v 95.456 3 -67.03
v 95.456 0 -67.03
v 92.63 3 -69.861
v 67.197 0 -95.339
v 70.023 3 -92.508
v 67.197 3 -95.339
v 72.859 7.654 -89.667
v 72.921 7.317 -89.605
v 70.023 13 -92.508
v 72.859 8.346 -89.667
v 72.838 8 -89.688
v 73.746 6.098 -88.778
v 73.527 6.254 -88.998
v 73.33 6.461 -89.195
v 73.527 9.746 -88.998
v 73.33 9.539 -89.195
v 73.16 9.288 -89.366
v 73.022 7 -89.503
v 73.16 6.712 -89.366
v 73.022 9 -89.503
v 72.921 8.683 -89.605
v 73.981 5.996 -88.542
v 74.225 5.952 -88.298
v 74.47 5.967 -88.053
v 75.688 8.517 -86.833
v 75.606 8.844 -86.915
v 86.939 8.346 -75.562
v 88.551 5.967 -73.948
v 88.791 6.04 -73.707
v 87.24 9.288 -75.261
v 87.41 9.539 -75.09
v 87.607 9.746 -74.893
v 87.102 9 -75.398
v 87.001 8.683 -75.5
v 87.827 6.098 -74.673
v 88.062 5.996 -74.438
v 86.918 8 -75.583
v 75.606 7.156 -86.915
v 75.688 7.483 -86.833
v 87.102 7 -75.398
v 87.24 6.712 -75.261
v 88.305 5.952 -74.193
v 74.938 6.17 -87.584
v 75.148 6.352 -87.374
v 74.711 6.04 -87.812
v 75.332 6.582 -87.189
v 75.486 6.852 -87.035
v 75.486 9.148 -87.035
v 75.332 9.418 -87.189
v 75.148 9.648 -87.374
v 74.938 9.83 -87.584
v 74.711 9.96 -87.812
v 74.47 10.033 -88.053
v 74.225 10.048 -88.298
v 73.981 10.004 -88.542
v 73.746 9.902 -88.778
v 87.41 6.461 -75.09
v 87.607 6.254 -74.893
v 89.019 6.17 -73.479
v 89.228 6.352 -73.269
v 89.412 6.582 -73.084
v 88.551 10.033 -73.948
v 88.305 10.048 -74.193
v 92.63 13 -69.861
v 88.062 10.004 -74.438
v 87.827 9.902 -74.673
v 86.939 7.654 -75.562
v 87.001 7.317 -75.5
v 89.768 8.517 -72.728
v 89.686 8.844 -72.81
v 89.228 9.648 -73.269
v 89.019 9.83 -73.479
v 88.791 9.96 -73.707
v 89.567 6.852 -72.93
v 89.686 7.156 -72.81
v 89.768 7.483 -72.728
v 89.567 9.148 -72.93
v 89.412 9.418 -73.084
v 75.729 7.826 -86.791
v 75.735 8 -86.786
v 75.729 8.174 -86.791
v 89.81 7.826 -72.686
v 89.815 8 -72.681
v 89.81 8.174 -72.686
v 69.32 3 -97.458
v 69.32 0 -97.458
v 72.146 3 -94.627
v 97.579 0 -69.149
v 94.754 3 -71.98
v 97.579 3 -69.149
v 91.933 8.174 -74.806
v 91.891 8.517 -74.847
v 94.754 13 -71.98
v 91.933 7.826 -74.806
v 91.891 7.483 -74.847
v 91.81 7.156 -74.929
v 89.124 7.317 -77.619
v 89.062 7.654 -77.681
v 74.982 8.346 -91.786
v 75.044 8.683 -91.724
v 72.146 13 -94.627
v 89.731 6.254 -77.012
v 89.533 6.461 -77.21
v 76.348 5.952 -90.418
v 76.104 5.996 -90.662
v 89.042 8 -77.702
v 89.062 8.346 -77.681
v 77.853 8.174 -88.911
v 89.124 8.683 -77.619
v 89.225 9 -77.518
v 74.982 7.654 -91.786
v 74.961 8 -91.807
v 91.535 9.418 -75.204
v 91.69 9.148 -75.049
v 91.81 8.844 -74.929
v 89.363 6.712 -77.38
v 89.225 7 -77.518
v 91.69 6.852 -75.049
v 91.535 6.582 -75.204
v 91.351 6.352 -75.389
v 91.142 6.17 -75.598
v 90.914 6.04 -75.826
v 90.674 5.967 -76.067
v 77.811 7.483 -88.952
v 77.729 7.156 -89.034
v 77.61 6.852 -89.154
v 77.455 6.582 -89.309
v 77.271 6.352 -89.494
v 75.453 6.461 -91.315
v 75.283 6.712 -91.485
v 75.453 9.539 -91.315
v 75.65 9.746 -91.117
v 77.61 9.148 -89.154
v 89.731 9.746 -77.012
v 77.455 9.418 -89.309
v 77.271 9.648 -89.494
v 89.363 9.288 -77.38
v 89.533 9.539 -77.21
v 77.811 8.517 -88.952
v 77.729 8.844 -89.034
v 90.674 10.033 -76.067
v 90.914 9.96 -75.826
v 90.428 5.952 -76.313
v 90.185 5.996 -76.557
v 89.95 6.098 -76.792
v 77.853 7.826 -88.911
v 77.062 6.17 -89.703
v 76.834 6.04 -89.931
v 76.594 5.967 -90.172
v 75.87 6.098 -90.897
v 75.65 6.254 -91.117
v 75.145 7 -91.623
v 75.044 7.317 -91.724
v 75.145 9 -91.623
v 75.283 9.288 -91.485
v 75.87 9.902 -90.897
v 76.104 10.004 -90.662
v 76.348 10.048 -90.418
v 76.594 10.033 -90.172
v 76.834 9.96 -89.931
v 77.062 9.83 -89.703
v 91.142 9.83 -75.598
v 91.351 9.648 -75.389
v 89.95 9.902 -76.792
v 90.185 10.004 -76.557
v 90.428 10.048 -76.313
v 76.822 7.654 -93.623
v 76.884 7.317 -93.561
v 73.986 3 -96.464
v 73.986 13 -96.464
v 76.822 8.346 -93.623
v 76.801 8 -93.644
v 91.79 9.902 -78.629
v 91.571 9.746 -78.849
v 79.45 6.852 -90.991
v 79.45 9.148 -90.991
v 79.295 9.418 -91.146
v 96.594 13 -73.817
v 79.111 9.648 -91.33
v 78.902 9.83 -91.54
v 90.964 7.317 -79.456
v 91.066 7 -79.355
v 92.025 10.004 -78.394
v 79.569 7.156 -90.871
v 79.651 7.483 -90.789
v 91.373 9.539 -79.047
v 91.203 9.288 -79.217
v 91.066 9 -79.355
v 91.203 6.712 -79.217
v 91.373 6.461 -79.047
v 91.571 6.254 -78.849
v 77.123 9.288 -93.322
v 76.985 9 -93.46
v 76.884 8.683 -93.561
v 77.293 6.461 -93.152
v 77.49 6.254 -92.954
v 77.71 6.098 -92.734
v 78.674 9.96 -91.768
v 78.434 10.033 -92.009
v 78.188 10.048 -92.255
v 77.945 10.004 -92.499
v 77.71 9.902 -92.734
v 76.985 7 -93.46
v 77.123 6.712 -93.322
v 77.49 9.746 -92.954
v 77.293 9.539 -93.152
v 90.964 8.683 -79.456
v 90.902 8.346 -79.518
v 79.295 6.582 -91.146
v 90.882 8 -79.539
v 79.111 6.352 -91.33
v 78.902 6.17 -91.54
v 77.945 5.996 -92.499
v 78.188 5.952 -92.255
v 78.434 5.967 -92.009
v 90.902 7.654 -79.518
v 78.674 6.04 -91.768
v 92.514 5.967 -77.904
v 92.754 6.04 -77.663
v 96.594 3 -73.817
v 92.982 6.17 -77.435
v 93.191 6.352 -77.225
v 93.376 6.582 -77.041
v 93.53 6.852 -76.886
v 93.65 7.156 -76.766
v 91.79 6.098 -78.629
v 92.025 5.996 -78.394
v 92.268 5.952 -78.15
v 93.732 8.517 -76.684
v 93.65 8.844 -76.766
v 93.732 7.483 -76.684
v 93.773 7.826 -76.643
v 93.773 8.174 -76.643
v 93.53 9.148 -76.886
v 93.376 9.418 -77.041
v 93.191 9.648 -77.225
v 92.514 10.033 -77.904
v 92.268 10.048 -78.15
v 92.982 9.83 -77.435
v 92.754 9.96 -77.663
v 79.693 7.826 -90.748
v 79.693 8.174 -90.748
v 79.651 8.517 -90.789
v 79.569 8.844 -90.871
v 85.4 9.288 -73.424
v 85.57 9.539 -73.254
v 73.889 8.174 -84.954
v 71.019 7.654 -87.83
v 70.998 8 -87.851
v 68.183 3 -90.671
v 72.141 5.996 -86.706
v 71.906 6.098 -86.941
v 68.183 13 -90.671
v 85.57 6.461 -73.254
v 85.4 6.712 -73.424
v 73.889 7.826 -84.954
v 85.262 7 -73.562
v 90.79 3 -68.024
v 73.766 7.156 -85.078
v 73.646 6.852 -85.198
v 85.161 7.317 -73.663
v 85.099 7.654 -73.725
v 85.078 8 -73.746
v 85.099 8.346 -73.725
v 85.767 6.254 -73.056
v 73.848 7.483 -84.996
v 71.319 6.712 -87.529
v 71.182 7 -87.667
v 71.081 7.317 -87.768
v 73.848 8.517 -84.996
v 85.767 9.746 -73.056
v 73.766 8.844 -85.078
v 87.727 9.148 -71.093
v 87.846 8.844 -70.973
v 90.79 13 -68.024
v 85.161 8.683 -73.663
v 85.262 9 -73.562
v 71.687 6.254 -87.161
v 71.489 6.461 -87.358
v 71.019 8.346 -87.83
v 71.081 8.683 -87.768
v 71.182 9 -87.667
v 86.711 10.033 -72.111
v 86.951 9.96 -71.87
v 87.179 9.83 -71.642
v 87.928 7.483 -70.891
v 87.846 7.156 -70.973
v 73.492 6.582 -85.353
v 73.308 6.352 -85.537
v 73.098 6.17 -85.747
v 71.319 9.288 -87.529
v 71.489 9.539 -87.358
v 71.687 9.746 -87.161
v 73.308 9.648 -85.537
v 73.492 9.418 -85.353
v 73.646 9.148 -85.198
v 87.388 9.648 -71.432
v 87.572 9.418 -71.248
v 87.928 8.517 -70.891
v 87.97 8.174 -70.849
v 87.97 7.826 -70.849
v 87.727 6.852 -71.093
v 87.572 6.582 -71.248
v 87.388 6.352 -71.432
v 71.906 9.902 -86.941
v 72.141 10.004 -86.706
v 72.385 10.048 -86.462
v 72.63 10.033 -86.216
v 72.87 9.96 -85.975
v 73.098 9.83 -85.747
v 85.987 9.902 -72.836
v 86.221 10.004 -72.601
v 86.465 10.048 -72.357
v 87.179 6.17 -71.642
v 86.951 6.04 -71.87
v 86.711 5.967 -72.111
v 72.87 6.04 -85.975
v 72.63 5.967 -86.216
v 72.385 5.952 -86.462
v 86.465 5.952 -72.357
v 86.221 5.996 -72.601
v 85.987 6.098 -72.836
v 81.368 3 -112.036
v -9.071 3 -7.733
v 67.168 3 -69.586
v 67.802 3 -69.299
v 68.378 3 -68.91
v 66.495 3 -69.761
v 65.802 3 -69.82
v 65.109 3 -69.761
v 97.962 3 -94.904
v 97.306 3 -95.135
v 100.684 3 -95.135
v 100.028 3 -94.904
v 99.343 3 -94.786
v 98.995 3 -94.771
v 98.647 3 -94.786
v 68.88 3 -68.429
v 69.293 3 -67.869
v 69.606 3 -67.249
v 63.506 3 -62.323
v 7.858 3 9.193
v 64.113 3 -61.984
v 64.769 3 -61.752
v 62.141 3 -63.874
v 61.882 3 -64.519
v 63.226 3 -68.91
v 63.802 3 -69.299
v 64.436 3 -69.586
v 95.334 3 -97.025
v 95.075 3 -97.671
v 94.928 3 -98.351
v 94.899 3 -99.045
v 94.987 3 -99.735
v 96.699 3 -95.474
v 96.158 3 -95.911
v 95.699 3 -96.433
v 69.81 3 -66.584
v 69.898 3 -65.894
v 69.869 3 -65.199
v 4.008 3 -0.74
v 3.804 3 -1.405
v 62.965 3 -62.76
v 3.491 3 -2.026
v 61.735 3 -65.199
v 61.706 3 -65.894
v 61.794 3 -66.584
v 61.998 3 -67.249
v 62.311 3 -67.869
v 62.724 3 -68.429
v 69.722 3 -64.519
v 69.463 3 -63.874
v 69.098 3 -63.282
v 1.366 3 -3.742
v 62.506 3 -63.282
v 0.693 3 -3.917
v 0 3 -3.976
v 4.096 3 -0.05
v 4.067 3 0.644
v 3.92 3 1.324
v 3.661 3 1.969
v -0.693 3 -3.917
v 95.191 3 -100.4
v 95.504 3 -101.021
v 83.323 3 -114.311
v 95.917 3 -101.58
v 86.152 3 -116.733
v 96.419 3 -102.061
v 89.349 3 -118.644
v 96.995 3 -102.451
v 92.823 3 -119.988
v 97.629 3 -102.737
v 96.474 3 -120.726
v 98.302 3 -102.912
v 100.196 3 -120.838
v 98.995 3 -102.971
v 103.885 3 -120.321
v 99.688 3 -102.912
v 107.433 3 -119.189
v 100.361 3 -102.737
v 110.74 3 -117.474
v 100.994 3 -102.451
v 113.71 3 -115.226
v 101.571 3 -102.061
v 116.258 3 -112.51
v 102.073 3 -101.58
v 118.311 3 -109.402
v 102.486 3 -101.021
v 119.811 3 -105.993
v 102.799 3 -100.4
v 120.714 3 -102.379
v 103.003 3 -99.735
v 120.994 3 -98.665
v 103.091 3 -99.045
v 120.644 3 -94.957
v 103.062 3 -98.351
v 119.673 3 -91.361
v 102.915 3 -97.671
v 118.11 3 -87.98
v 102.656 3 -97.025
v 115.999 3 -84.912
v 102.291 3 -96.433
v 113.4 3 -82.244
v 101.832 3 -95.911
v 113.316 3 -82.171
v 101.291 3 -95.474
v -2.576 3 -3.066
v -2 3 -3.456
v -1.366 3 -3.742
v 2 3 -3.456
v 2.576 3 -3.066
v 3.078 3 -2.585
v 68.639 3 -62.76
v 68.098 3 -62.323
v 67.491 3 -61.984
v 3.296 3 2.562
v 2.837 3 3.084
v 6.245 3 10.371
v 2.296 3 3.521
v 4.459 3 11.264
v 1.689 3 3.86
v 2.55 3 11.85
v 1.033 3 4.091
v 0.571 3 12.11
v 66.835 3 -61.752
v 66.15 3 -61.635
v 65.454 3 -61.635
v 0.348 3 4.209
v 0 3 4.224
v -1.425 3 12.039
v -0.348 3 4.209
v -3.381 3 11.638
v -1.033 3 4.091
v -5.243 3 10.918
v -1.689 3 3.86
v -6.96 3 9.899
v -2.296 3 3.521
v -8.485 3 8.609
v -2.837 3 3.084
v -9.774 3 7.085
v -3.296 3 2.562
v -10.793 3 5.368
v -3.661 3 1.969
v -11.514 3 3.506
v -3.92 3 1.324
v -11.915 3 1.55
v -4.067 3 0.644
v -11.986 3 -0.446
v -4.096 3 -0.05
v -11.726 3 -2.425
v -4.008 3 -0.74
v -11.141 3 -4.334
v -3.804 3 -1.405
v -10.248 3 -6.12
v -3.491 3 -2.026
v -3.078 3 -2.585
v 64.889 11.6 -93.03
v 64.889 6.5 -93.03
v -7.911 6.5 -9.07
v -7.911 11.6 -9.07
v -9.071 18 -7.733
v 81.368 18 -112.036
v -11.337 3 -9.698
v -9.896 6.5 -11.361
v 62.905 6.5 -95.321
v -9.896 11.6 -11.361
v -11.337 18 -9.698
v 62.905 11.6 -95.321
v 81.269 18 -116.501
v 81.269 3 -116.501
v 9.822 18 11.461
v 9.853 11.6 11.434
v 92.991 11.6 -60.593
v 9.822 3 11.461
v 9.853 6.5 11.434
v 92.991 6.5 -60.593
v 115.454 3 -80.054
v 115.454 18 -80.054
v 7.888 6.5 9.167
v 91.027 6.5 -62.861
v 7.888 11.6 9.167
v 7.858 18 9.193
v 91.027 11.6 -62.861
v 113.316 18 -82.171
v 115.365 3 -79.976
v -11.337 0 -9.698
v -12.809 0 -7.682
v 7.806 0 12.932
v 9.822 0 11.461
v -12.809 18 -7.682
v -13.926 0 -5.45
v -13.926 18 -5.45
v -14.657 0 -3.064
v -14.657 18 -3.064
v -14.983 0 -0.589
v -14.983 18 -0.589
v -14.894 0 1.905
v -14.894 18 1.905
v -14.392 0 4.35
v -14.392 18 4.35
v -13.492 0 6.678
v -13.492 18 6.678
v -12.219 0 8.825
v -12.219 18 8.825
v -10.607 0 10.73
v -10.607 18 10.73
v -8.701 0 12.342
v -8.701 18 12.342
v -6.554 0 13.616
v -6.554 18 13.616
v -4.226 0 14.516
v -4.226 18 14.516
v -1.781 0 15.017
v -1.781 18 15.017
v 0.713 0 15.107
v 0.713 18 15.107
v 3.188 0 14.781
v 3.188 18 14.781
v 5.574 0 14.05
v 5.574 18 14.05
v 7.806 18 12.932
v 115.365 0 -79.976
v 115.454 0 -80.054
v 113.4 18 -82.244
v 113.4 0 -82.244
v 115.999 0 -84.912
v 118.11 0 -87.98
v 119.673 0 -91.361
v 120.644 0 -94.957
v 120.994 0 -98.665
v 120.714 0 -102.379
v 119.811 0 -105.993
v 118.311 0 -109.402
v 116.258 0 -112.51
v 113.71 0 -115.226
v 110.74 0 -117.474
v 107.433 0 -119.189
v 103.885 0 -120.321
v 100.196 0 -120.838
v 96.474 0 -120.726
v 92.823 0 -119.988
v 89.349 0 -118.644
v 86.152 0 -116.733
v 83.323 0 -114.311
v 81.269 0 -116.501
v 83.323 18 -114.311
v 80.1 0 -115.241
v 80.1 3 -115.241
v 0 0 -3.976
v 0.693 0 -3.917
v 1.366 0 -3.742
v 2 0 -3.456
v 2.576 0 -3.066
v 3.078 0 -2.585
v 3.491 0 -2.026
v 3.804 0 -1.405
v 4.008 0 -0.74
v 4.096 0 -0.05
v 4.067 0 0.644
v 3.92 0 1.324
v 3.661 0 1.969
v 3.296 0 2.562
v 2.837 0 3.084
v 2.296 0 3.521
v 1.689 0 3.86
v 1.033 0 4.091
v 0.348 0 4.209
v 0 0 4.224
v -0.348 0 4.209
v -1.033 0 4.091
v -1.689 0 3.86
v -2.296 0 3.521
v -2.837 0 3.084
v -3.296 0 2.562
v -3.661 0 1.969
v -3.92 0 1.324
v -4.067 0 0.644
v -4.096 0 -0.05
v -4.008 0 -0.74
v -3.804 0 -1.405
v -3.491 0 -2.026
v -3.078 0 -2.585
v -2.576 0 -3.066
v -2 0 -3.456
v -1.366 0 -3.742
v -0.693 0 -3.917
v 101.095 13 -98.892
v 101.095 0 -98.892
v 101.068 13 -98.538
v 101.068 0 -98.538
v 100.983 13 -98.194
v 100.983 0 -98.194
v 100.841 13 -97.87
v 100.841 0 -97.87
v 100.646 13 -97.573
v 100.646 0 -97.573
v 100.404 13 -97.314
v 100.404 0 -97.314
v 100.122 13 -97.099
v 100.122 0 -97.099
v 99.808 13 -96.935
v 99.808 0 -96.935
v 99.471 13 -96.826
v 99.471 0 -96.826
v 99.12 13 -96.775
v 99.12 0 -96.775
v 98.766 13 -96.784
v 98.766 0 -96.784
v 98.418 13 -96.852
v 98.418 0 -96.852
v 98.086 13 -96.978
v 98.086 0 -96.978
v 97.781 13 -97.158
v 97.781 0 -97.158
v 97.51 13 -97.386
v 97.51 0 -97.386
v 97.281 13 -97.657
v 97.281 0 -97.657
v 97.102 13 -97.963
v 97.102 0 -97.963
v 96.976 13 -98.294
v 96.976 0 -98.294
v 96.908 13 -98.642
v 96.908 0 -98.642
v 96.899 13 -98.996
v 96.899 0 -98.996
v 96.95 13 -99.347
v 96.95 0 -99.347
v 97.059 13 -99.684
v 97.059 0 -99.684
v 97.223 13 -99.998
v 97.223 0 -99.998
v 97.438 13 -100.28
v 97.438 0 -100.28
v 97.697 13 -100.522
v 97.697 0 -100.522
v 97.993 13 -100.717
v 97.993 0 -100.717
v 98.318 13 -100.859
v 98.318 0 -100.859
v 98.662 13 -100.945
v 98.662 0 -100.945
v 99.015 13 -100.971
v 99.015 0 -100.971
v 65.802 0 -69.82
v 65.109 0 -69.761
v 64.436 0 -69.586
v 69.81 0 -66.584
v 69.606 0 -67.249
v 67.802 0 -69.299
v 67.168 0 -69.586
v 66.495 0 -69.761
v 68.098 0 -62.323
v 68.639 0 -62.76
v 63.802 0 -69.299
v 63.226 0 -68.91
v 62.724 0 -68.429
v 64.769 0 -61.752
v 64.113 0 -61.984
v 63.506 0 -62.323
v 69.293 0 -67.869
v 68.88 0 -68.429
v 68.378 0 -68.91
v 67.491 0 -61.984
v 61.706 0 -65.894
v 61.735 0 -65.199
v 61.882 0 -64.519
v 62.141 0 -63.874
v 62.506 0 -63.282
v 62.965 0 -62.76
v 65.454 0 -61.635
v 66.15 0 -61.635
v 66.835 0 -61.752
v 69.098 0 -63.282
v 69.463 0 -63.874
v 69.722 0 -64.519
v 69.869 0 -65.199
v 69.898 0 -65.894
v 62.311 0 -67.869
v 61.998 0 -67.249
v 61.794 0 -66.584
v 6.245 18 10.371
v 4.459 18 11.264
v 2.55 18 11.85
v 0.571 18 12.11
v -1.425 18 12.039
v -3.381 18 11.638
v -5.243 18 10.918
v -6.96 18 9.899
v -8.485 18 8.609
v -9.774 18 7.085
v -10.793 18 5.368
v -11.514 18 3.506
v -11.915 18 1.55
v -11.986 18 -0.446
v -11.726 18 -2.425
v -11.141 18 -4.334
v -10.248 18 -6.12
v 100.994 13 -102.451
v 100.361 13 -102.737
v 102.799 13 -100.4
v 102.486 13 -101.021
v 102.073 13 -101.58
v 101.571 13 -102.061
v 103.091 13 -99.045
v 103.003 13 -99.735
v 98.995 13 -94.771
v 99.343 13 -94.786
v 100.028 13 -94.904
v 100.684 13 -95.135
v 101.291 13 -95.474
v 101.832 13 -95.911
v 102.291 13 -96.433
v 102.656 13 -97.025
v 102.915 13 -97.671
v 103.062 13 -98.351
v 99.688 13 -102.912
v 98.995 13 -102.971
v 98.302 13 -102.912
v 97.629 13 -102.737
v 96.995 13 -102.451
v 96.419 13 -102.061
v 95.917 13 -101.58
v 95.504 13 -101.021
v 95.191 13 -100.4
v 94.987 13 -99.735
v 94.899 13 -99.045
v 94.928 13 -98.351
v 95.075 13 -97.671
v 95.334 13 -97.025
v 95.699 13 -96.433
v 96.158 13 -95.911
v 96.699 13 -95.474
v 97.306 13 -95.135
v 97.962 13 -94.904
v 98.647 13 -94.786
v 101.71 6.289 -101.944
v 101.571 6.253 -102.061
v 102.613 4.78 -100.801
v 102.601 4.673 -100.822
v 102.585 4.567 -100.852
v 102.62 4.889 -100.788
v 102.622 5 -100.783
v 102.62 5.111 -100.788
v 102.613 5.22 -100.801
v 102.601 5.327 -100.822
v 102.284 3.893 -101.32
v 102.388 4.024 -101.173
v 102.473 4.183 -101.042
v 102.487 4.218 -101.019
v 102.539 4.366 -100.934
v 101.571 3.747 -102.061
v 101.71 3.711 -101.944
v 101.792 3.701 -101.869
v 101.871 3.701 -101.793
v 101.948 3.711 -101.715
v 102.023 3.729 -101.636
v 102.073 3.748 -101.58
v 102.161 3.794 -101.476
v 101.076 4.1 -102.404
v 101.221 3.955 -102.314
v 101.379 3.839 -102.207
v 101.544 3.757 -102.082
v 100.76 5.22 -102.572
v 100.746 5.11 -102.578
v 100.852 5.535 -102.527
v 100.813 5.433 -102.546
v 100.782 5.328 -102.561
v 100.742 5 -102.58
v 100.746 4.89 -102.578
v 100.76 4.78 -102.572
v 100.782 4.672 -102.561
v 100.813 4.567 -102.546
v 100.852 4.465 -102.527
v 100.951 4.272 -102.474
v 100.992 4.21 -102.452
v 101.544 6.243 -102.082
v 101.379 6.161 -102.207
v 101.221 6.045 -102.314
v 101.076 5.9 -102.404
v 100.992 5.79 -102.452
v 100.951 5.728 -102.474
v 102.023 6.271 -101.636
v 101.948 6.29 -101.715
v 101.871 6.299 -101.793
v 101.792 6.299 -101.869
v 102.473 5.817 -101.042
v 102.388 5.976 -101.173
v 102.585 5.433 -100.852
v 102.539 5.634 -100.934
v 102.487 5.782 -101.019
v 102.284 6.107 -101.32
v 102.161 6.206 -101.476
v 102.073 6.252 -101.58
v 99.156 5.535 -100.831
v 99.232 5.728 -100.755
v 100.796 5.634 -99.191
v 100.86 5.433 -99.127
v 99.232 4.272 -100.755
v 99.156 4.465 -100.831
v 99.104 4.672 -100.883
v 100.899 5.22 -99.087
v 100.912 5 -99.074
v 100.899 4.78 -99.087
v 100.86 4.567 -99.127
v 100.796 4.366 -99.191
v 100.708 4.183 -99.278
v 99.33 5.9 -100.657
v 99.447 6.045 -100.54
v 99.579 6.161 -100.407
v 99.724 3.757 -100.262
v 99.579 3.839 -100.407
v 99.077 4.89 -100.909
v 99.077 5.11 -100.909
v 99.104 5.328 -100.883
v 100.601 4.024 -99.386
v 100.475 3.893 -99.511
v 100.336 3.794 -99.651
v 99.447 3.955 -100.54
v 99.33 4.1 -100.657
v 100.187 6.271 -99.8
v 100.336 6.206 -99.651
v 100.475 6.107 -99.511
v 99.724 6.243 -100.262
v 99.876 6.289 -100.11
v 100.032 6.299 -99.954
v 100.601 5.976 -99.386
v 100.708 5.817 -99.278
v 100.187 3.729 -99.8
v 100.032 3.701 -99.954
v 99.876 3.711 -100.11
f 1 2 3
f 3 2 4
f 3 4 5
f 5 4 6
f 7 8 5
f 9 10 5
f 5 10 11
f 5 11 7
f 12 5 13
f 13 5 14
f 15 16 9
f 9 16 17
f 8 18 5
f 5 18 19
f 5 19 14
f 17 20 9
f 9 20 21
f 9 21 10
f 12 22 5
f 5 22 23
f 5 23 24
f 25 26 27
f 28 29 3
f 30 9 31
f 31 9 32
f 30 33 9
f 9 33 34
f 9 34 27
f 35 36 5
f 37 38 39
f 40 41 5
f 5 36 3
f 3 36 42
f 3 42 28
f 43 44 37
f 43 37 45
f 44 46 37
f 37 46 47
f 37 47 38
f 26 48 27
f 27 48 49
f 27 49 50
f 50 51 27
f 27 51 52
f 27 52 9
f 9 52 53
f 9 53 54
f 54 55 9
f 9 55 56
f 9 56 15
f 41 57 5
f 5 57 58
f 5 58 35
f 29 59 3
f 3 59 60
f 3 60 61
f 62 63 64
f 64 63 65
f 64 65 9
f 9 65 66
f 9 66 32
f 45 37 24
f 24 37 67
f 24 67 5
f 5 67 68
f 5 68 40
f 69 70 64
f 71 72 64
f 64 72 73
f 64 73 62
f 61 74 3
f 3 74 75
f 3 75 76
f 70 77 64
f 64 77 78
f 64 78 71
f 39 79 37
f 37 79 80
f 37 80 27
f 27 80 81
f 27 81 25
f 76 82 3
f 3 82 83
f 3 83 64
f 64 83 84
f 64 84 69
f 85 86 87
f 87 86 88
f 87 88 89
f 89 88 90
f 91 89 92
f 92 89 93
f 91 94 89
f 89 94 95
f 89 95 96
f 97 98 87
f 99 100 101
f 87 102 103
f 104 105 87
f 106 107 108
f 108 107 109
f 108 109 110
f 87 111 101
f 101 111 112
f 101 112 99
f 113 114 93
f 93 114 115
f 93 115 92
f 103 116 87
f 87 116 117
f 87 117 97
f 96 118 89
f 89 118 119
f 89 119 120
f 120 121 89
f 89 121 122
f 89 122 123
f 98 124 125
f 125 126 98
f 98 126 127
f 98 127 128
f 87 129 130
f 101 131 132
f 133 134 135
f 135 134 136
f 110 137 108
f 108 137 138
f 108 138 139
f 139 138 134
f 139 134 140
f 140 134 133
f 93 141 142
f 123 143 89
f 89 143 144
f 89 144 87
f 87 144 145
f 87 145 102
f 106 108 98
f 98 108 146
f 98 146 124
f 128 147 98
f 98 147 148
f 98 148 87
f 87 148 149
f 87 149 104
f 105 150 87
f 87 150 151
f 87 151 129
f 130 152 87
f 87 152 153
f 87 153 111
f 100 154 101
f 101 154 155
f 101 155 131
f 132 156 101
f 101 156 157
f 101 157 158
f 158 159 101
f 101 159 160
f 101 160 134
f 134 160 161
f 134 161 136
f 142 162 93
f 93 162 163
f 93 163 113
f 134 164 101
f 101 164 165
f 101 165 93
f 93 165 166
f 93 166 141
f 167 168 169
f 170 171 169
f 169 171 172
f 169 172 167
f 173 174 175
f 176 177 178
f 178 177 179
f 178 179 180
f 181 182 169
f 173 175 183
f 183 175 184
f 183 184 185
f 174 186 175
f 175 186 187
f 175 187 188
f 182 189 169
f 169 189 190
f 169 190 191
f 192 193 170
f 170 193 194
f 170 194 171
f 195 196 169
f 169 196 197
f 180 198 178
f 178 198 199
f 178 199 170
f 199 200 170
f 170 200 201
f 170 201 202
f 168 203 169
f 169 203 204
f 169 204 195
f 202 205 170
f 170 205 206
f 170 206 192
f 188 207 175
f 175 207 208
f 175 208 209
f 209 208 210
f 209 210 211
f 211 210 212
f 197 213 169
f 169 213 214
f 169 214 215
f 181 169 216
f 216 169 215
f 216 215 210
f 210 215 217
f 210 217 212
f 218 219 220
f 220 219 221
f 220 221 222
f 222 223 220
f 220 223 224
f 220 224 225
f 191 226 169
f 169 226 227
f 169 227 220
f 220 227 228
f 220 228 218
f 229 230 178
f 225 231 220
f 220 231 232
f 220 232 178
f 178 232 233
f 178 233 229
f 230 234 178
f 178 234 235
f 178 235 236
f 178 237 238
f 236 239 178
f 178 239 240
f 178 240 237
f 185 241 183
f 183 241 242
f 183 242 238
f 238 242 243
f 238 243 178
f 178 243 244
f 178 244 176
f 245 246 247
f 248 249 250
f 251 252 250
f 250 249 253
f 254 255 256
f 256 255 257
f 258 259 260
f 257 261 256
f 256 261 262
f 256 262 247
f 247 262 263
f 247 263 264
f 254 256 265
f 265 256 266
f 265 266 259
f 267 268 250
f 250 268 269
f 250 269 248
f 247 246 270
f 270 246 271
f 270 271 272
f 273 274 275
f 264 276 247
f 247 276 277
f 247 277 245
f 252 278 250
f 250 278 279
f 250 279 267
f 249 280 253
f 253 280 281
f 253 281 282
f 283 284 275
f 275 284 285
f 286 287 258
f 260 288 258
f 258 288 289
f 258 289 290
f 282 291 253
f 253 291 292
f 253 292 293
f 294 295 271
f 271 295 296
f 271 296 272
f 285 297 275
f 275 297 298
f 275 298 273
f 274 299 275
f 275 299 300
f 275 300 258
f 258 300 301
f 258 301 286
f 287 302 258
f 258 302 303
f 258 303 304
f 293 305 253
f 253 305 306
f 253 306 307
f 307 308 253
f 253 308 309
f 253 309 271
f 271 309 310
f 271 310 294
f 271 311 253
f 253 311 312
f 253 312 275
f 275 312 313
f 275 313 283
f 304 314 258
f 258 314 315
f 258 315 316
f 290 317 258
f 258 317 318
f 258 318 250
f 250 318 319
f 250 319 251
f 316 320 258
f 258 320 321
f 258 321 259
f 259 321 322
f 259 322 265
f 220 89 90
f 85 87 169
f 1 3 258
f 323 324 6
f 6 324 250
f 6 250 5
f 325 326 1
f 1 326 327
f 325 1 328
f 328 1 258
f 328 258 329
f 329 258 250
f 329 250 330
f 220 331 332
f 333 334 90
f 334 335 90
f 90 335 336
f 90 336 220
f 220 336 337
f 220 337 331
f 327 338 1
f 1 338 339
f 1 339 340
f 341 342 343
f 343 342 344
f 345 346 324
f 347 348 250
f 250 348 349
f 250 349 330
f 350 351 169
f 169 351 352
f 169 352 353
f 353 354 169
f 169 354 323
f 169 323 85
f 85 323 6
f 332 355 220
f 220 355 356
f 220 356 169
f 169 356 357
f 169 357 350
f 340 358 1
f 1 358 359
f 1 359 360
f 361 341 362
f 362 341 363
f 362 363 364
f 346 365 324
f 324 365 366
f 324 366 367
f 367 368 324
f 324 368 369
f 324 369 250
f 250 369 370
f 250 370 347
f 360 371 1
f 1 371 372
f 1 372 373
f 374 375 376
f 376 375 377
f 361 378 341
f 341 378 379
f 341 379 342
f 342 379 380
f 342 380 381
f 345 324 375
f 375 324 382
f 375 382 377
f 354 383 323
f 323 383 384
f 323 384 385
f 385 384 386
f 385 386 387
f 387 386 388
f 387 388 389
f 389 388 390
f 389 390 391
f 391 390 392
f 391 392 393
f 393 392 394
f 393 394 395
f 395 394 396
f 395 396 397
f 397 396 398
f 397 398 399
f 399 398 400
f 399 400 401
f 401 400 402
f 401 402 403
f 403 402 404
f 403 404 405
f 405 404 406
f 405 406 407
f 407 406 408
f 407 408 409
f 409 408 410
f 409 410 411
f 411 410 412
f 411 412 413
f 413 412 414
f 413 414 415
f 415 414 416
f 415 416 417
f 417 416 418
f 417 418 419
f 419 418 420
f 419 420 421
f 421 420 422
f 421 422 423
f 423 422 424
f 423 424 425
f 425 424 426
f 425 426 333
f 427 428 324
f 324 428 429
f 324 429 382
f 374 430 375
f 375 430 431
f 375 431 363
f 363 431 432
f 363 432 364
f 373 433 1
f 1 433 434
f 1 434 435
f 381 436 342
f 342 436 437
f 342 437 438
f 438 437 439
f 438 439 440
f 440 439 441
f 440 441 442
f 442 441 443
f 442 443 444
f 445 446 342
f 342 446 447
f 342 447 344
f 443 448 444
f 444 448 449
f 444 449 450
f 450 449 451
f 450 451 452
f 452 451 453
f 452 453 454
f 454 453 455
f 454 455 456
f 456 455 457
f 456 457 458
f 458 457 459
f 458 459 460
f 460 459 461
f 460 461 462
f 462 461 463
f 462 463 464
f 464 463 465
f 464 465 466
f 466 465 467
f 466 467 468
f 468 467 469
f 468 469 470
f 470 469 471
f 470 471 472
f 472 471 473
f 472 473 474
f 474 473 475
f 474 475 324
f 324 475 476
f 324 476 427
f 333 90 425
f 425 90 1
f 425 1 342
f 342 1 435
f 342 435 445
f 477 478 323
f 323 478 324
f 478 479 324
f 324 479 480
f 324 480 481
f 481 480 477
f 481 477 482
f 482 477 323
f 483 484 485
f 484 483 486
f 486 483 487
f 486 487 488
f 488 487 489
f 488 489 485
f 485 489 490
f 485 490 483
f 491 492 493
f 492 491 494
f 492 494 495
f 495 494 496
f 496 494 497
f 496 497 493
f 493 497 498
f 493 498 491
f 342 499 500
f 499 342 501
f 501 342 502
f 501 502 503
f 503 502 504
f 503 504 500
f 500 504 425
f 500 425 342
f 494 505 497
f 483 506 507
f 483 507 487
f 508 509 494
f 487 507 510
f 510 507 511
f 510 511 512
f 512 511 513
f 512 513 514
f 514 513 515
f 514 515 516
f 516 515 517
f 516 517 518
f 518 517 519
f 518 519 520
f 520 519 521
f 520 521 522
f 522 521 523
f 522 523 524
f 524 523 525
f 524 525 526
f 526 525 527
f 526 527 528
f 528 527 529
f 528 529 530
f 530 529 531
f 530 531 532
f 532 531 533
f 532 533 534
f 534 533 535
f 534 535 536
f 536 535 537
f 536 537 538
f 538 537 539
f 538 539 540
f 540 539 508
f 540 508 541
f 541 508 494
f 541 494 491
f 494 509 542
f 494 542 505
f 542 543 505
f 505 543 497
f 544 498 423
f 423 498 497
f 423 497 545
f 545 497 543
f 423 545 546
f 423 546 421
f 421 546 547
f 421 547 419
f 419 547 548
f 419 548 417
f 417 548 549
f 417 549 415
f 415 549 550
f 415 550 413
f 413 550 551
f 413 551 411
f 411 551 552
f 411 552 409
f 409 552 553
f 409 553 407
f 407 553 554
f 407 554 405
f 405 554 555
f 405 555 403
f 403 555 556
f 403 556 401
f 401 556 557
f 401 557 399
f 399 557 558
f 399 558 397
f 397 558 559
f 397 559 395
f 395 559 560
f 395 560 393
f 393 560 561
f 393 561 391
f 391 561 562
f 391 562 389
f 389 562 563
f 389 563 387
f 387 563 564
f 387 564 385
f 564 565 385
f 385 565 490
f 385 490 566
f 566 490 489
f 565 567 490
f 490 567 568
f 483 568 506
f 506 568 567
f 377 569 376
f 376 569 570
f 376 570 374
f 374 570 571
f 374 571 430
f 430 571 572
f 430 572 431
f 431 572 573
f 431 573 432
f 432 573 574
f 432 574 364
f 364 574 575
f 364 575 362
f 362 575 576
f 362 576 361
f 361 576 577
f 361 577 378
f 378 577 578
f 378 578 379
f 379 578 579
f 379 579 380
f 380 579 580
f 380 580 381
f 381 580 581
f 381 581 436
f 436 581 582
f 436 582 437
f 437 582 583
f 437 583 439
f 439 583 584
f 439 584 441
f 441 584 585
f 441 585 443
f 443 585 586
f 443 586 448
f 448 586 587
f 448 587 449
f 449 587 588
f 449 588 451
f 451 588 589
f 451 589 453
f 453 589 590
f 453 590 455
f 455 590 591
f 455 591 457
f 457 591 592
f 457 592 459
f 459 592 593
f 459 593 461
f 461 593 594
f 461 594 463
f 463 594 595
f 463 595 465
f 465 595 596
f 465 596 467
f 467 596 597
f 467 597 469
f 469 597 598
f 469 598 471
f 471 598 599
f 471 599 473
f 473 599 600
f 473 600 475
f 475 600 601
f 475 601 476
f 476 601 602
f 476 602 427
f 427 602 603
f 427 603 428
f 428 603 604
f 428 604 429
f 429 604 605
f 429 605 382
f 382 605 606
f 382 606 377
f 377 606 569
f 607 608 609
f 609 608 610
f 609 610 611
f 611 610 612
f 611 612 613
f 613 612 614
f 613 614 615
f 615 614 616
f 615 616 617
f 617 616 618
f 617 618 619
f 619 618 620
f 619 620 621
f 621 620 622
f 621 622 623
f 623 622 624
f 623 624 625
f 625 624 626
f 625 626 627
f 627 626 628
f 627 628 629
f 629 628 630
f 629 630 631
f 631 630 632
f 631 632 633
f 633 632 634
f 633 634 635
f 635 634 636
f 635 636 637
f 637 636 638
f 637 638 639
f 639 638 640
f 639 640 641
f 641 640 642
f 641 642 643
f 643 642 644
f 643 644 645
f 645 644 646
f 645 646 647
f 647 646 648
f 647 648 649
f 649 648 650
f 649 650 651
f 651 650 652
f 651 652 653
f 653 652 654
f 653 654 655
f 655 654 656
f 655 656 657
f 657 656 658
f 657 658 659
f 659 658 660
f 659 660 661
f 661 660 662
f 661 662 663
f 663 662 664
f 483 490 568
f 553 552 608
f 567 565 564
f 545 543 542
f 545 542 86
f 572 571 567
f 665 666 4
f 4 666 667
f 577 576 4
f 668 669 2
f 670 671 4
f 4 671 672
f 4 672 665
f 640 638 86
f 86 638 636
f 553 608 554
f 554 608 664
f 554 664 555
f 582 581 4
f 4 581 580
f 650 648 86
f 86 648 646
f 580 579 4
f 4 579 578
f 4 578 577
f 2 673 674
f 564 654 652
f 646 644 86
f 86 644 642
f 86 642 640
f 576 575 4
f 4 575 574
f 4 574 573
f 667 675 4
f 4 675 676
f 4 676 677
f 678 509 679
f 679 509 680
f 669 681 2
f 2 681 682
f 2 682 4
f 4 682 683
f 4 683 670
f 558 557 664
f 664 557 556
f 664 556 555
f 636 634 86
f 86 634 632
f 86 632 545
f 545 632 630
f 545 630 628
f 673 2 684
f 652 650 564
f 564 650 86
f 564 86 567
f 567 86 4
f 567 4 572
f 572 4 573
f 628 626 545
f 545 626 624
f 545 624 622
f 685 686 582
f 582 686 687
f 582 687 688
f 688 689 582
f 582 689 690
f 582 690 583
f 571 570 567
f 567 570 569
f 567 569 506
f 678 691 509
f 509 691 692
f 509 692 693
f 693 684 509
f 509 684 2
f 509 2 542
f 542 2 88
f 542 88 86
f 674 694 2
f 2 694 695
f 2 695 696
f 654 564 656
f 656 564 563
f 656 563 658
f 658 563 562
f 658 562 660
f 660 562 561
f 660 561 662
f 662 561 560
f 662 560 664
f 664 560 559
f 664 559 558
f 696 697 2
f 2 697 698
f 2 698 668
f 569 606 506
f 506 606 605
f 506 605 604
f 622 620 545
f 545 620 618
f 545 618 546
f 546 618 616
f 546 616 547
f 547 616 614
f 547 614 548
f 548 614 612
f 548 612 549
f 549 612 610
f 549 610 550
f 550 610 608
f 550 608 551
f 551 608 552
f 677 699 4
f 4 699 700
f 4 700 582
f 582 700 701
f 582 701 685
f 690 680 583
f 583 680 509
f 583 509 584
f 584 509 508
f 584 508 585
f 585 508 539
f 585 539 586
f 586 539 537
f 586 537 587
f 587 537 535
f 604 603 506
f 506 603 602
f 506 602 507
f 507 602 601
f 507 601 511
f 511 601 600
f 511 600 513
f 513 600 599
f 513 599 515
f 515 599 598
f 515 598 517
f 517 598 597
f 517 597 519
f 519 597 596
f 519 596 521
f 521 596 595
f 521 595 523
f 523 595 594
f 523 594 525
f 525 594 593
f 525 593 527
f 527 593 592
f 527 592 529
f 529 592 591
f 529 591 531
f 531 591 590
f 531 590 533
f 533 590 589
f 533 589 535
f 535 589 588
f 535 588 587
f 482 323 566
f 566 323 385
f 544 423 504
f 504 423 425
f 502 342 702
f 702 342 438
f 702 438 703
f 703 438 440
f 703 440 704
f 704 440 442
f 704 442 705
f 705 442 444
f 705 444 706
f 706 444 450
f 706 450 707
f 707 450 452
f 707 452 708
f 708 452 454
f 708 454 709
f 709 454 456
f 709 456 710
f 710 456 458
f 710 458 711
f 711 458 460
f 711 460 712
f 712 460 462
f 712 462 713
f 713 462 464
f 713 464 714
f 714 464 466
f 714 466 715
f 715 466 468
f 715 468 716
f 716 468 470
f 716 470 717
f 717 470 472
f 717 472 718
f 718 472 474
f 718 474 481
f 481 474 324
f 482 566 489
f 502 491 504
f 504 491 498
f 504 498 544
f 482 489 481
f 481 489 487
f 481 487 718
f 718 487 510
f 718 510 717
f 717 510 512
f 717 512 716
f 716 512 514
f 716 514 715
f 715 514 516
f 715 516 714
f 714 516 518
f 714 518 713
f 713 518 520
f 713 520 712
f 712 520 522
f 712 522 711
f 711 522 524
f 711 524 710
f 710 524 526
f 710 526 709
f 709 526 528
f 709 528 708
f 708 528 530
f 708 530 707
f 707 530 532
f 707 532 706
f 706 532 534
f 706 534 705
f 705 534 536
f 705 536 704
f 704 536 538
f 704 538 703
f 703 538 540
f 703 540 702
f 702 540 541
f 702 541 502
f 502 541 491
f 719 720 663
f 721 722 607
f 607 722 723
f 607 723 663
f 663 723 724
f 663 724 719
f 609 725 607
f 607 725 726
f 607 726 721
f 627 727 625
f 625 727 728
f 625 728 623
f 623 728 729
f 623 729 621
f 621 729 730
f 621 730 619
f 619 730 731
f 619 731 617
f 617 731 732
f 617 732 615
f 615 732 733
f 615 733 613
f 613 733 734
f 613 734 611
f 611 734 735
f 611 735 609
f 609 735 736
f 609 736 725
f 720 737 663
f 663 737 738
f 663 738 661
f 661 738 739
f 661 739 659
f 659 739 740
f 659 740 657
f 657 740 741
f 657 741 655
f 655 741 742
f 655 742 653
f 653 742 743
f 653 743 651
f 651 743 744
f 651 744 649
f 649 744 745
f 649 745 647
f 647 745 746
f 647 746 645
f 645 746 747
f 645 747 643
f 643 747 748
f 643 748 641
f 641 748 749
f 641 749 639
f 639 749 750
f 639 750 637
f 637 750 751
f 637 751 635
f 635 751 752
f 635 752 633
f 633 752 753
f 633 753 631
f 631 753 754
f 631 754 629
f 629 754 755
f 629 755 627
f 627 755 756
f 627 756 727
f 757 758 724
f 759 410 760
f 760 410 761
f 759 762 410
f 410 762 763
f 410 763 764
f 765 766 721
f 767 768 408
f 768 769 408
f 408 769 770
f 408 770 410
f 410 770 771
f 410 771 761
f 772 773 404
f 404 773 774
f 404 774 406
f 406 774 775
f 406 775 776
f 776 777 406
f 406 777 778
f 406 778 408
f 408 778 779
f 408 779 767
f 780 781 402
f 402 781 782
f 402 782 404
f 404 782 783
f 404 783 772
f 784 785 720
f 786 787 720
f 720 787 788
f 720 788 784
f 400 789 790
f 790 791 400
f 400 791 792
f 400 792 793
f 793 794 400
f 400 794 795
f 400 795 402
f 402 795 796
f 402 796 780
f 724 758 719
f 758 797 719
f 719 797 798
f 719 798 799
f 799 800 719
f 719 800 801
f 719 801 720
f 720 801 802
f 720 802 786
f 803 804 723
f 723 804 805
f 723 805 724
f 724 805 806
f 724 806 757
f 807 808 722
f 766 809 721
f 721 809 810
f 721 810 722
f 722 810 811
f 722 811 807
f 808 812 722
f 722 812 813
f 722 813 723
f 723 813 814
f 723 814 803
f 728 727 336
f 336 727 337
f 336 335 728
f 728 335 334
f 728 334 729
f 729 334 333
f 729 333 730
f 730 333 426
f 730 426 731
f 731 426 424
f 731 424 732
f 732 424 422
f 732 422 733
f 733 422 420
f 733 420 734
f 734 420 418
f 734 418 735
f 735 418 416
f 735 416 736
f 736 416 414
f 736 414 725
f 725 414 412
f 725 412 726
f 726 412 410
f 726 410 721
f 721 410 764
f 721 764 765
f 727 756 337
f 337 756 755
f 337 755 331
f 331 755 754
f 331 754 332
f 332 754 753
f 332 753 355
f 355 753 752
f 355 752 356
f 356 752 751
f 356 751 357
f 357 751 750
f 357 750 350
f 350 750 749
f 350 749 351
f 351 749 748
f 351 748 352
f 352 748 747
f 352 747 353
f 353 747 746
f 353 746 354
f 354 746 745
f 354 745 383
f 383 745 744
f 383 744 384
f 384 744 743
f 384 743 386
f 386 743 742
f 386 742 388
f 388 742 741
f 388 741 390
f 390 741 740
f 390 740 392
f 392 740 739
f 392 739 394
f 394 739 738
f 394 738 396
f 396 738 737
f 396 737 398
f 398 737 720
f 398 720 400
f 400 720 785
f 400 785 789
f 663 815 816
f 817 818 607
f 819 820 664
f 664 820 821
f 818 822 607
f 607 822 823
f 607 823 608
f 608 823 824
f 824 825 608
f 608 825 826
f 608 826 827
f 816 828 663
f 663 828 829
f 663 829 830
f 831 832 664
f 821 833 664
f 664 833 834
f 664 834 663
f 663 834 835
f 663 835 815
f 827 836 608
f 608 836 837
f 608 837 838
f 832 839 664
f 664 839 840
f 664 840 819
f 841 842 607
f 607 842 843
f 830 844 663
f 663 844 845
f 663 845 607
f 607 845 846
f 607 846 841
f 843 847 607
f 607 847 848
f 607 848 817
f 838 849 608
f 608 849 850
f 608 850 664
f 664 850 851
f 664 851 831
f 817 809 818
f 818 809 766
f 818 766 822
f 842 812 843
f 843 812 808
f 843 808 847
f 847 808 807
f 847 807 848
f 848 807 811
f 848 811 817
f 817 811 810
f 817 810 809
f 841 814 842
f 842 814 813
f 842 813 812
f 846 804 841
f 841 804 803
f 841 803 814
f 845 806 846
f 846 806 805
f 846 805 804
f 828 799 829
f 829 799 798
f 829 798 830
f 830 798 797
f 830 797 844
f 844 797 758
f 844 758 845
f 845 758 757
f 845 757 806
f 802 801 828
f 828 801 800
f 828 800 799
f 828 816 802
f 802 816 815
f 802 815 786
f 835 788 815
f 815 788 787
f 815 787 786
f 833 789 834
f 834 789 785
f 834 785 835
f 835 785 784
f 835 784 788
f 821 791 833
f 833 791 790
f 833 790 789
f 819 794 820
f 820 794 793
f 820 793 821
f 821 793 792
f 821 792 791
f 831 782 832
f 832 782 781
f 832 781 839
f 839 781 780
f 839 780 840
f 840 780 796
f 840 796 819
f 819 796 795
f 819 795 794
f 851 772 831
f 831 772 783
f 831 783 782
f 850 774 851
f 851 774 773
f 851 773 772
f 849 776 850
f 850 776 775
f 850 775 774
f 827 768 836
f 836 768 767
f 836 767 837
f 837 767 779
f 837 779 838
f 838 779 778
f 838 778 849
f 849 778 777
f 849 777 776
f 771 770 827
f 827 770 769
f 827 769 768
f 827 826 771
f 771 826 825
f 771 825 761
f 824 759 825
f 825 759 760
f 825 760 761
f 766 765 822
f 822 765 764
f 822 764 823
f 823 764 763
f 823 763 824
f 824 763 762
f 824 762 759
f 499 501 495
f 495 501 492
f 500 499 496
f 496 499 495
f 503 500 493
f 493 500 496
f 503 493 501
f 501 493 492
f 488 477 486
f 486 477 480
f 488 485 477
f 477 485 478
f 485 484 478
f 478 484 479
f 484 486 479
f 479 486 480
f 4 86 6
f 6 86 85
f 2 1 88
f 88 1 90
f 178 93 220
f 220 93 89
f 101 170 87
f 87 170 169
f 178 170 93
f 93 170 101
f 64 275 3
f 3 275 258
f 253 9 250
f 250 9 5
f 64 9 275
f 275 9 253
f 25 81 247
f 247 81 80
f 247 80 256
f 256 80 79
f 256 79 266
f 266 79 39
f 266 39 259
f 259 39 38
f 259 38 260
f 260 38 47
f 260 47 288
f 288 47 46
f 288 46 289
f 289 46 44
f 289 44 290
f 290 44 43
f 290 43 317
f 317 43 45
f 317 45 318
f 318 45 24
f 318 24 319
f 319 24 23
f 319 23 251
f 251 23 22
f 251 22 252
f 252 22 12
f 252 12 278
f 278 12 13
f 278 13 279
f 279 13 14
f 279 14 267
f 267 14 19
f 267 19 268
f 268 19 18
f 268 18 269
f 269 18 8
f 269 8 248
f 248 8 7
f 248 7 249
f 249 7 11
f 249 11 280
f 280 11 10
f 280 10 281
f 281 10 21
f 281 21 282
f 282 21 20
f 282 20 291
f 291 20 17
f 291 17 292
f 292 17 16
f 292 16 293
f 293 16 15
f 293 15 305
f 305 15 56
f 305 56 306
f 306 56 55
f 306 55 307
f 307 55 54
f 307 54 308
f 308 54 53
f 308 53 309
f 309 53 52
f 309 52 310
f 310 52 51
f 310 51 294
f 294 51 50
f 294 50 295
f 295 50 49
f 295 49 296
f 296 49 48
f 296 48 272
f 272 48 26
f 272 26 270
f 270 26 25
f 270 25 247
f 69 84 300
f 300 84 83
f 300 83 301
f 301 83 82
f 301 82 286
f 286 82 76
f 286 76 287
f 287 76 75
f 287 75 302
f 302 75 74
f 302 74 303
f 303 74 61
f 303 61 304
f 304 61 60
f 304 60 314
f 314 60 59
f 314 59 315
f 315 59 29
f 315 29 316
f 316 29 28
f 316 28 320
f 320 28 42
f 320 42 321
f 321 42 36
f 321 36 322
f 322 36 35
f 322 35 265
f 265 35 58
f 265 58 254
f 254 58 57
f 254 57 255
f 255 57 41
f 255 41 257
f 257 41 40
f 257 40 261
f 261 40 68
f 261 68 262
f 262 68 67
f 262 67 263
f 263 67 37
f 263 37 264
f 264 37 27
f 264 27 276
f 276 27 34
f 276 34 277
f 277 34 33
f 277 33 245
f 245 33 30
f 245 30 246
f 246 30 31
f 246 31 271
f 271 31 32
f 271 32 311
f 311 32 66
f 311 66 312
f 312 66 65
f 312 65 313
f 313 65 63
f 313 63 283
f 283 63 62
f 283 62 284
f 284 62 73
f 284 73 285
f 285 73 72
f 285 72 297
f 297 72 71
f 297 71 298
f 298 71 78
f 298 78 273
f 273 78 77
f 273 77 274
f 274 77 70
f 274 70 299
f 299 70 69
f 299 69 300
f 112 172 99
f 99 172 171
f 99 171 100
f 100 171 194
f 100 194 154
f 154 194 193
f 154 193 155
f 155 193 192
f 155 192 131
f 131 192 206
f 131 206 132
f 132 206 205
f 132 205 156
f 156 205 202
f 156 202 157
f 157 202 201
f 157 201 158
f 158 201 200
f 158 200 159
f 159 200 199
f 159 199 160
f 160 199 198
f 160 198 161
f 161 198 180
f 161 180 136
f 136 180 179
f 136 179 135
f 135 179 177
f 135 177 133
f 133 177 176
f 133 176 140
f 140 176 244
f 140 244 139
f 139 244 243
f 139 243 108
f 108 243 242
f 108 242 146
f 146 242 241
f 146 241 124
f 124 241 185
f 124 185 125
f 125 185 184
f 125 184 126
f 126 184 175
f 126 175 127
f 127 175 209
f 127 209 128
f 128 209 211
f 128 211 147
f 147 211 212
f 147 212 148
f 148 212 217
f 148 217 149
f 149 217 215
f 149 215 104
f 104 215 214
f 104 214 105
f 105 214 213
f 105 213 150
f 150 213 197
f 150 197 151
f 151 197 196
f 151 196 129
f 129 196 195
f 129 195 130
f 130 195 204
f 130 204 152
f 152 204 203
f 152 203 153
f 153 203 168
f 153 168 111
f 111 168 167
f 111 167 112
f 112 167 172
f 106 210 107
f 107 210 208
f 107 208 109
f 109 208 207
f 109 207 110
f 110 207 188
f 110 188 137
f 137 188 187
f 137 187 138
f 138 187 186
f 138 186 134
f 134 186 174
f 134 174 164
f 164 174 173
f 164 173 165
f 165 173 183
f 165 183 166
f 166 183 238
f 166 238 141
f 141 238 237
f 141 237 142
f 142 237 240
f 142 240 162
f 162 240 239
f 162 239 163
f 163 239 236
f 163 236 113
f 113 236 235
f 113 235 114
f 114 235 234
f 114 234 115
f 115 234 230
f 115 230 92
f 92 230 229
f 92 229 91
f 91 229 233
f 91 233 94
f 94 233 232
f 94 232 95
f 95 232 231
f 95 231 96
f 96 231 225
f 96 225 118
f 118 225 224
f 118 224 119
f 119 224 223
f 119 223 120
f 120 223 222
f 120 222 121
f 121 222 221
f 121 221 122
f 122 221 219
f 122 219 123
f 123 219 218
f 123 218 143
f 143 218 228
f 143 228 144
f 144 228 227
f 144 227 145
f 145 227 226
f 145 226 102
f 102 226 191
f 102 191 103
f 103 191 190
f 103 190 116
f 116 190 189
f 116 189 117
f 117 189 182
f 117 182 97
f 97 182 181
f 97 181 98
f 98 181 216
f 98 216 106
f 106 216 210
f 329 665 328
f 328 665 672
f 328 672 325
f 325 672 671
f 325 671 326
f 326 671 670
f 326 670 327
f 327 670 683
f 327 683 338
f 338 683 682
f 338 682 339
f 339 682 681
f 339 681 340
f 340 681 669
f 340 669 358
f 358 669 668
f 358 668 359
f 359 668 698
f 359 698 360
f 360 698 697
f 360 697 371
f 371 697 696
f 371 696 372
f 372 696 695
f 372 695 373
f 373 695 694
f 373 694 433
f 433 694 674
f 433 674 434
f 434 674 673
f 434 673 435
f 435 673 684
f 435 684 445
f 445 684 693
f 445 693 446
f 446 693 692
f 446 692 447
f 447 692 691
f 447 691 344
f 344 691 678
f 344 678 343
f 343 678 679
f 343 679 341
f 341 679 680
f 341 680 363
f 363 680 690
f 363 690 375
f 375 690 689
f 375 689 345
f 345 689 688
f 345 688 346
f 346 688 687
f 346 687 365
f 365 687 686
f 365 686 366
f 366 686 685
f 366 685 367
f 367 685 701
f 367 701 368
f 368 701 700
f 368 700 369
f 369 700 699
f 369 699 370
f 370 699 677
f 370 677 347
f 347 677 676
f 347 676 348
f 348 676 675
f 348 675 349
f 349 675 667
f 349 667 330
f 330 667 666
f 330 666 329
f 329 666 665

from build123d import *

# Parameters (mm, degrees)
SKETCH_2_R               = 2.1
SKETCH_2_R_2             = 4.1
EXTRUDE_2_DEPTH          = 3
EXTRUDE_3_DEPTH          = 15
SKETCH_4_R               = 4.1
SKETCH_4_R_2             = 2.1
EXTRUDE_4_DEPTH          = 10
EXTRUDE_START            = -13
EXTRUDE_5_DEPTH          = 13
SKETCH_7_R               = 1.3
CUT_EXTRUDE_1_DEPTH      = 13
CUT_EXTRUDE_2_DEPTH      = 174.68818701
CUT_EXTRUDE_2_DEPTH_BACK = 174.68818701
SKETCH_8_W               = 110
SKETCH_8_H               = 2.6
SKETCH_8_H_2             = 2.5
CUT_EXTRUDE_3_DEPTH      = 172.969913078
CUT_EXTRUDE_3_DEPTH_BACK = 172.969913078
EXTRUDE_6_DEPTH          = 10
SKETCH_11_R              = 2
CUT_EXTRUDE_4_DEPTH      = 10
SKETCH_13_R              = 2.05
CUT_EXTRUDE_5_DEPTH      = 10
SKETCH_14_R              = 4.1
EXTRUDE_7_DEPTH          = 3
CUT_EXTRUDE_6_DEPTH      = 3


# Read off the part's stored shape, not the designer's step: 凸台-拉伸3, 凸台-拉伸5
with BuildPart() as part:
    # 草图2 → 凸台-拉伸2 (new body)
    with BuildSketch(Plane(origin=(0, 0, 0), x_dir=(1, 0, 0), z_dir=(0, 1, 0))):
        with BuildLine():
            Line((80.099742919, 115.241133642), (-11.337123868, 9.698254241))
            ThreePointArc((-11.337123868, 9.698254241), (-10.606601718, -10.730242528), (9.821895051, -11.460764678))
            Line((9.821895051, -11.460764678), (115.364774452, 79.976102109))
            ThreePointArc((115.364774452, 79.976102109), (115.409508589, 80.014950331), (115.454150533, 80.053904459))
            Line((115.454150533, 80.053904459), (113.400395441, 82.243526883))
            ThreePointArc((113.400395441, 82.243526883), (115.041169115, 113.92185113), (83.322768112, 114.310956698))
            Line((83.322768112, 114.310956698), (81.26901302, 116.500579122))
            ThreePointArc((81.26901302, 116.500579122), (80.673552706, 115.880906565), (80.099742919, 115.241133642))
        make_face()
        with Locations(Location((98.994949366, 98.871308556, 0), (0, 0, 270))):
            Circle(SKETCH_2_R, mode=Mode.SUBTRACT)
        with Locations(Location((0, -0.12364081, 0), (0, 0, 270))):
            Circle(SKETCH_2_R_2, mode=Mode.SUBTRACT)
        with Locations(Location((70.710678119, 70.587037309, 0), (0, 0, 270))):
            Circle(SKETCH_2_R_2, mode=Mode.SUBTRACT)
    extrude(amount=EXTRUDE_2_DEPTH)

    # 凸台-拉伸3 outline → 凸台-拉伸3 (add)
    with BuildSketch(Plane(origin=(0, 3, 0), x_dir=(1, 0, 0), z_dir=(0, 1, 0))):
        with BuildLine():
            ThreePointArc((-11.337123868, 9.698254241), (-10.606601718, -10.730242528), (9.821895051, -11.460764678))
            Line((9.821895051, -11.460764678), (115.454150533, 80.053904459))
            Line((115.454150533, 80.053904459), (113.400395441, 82.243526883))
            ThreePointArc((113.400395441, 82.243526883), (113.358376595, 82.207216674), (113.316266225, 82.171012648))
            Line((113.316266225, 82.171012648), (7.857534265, -9.193324116))
            ThreePointArc((7.857534265, -9.193324116), (-8.484829636, -8.609373899), (-9.07051987, 7.732927734))
            Line((-9.07051987, 7.732927734), (81.368262538, 112.03565098))
            ThreePointArc((81.368262538, 112.03565098), (82.306692779, 113.206652712), (83.322768112, 114.310956698))
            Line((83.322768112, 114.310956698), (81.26901302, 116.500579122))
            Line((81.26901302, 116.500579122), (-11.337123868, 9.698254241))
        make_face()
    extrude(amount=EXTRUDE_3_DEPTH)

    # 草图4 → 凸台-拉伸4 (add)
    with BuildSketch(Plane(origin=(0, 3, 0), x_dir=(1, 0, 0), z_dir=(0, 1, 0))):
        with Locations(Location((98.994949366, 98.871308556, 0), (0, 0, 270))):
            Circle(SKETCH_4_R)
        with Locations(Location((98.994949366, 98.871308556, 0), (0, 0, 270))):
            Circle(SKETCH_4_R_2, mode=Mode.SUBTRACT)
    extrude(amount=EXTRUDE_4_DEPTH)

    # 凸台-拉伸5 outline → 凸台-拉伸5 (add)
    with BuildSketch(Plane(origin=(0, 13, 0), x_dir=(1, 0, 0), z_dir=(0, 1, 0)).offset(EXTRUDE_START)):
        with BuildLine():
            ThreePointArc((101.094850935, 98.891640782), (100.479873606, 100.356232796), (99.015281592, 100.971210125))
            Line((99.015281592, 100.971210125), (101.094850935, 98.891640782))
        make_face()
    extrude(amount=EXTRUDE_5_DEPTH)

    # 草图7 → 切除-拉伸1 (cut)
    with BuildSketch(Plane(origin=(99.993245858, 0, -99.993245858), x_dir=(0.7071067811865475, 0, 0.7071067811865477), z_dir=(-0.7071067811865477, 0, 0.7071067811865475))):
        with Locations((0, 5)):
            Circle(SKETCH_7_R)
    extrude(amount=-CUT_EXTRUDE_1_DEPTH, mode=Mode.SUBTRACT)

    # 草图8 → 切除-拉伸2 (cut, two sides: drawn at the far end of the back side and taken through both)
    with BuildSketch(Plane(origin=(9.883107451, 0, 11.40773322), x_dir=(0.75580694217799, 0, -0.6547945220873159), z_dir=(0.6547945220873159, 0, 0.75580694217799)).offset(-CUT_EXTRUDE_2_DEPTH_BACK)):
        with Locations((54.959520341, 10.3)):
            Rectangle(SKETCH_8_W, SKETCH_8_H)
        with Locations((54.959520341, 7.75)):
            Rectangle(SKETCH_8_W, SKETCH_8_H_2)
    extrude(amount=CUT_EXTRUDE_2_DEPTH + CUT_EXTRUDE_2_DEPTH_BACK, mode=Mode.SUBTRACT)

    # 草图9 → 切除-拉伸3 (cut, two sides: drawn at the far end of the back side and taken through both)
    with BuildSketch(Plane.XZ.offset(-CUT_EXTRUDE_3_DEPTH_BACK)):
        Polygon((83.449732713, -83.303817091), (81.326556947, -81.184353794), (67.196801633, -95.338858899), (69.319977399, -97.458322196), align=None)
        Polygon((95.456312261, -67.02984869), (81.326556947, -81.184353794), (83.449732713, -83.303817091), (97.579488027, -69.149311987), align=None)
    extrude(amount=CUT_EXTRUDE_3_DEPTH + CUT_EXTRUDE_3_DEPTH_BACK, mode=Mode.SUBTRACT)

    # 草图10 → 凸台-拉伸6 (add)
    with BuildSketch(Plane(origin=(0, 3, 0), x_dir=(1, 0, 0), z_dir=(0, 1, 0))):
        Polygon((81.326556947, 81.184353794), (70.022752696, 92.507957878), (68.182667032, 90.671089687), (79.486471284, 79.347485603), align=None)
        Polygon((92.630361199, 69.86074971), (81.326556947, 81.184353794), (79.486471284, 79.347485603), (90.790275535, 68.02388152), align=None)
        Polygon((73.986014125, 96.464289366), (72.145928462, 94.627421175), (83.449732713, 83.303817091), (94.753536964, 71.980213008), (96.593622628, 73.817081198), align=None)
    extrude(amount=EXTRUDE_6_DEPTH)

    # 草图11 → 切除-拉伸4 (cut)
    with BuildSketch(Plane(origin=(85.289818377, 0, -85.140685282), x_dir=(-0.7064877657092933, 0, -0.707725255238988), z_dir=(0.707725255238988, 0, -0.7064877657092933))):
        with Locations((-9.96499851, 8)):
            Circle(SKETCH_11_R)
        with Locations((9.96499851, 8)):
            Circle(SKETCH_11_R)
    extrude(amount=-CUT_EXTRUDE_4_DEPTH, mode=Mode.SUBTRACT)

    # 草图13 → 切除-拉伸5 (cut)
    with BuildSketch(Plane(origin=(85.289818377, 0, -85.140685282), x_dir=(-0.7064877657092933, 0, -0.707725255238988), z_dir=(0.707725255238988, 0, -0.7064877657092933))):
        with Locations((-9.96499851, 8)):
            Circle(SKETCH_13_R)
        with Locations((9.964998511, 8)):
            Circle(SKETCH_13_R)
    extrude(amount=-CUT_EXTRUDE_5_DEPTH, mode=Mode.SUBTRACT)

    # 草图14 → 凸台-拉伸7 (add)
    with BuildSketch(Plane.XZ):
        with Locations((70.710678119, -70.587037309)):
            Circle(SKETCH_14_R)
    extrude(amount=-EXTRUDE_7_DEPTH)

    # 草图15 → 切除-拉伸6 (cut)
    with BuildSketch(Plane.XZ):
        with BuildLine():
            ThreePointArc((69.902009877, -65.719825747), (67.369828397, -61.931429637), (62.901061054, -62.822500095))
            Line((62.901061054, -62.822500095), (65.802009877, -65.719825747))
            Line((65.802009877, -65.719825747), (68.702958699, -68.617151398))
            ThreePointArc((68.702958699, -68.617151398), (69.590405987, -67.287644267), (69.902009877, -65.719825747))
        make_face()
        with BuildLine():
            Line((65.802009877, -65.719825747), (62.901061054, -62.822500095))
            ThreePointArc((62.901061054, -62.822500095), (62.904684226, -68.620774569), (68.702958699, -68.617151398))
            Line((68.702958699, -68.617151398), (65.802009877, -65.719825747))
        make_face()
    extrude(amount=-CUT_EXTRUDE_6_DEPTH, mode=Mode.SUBTRACT)


solid = part.part
